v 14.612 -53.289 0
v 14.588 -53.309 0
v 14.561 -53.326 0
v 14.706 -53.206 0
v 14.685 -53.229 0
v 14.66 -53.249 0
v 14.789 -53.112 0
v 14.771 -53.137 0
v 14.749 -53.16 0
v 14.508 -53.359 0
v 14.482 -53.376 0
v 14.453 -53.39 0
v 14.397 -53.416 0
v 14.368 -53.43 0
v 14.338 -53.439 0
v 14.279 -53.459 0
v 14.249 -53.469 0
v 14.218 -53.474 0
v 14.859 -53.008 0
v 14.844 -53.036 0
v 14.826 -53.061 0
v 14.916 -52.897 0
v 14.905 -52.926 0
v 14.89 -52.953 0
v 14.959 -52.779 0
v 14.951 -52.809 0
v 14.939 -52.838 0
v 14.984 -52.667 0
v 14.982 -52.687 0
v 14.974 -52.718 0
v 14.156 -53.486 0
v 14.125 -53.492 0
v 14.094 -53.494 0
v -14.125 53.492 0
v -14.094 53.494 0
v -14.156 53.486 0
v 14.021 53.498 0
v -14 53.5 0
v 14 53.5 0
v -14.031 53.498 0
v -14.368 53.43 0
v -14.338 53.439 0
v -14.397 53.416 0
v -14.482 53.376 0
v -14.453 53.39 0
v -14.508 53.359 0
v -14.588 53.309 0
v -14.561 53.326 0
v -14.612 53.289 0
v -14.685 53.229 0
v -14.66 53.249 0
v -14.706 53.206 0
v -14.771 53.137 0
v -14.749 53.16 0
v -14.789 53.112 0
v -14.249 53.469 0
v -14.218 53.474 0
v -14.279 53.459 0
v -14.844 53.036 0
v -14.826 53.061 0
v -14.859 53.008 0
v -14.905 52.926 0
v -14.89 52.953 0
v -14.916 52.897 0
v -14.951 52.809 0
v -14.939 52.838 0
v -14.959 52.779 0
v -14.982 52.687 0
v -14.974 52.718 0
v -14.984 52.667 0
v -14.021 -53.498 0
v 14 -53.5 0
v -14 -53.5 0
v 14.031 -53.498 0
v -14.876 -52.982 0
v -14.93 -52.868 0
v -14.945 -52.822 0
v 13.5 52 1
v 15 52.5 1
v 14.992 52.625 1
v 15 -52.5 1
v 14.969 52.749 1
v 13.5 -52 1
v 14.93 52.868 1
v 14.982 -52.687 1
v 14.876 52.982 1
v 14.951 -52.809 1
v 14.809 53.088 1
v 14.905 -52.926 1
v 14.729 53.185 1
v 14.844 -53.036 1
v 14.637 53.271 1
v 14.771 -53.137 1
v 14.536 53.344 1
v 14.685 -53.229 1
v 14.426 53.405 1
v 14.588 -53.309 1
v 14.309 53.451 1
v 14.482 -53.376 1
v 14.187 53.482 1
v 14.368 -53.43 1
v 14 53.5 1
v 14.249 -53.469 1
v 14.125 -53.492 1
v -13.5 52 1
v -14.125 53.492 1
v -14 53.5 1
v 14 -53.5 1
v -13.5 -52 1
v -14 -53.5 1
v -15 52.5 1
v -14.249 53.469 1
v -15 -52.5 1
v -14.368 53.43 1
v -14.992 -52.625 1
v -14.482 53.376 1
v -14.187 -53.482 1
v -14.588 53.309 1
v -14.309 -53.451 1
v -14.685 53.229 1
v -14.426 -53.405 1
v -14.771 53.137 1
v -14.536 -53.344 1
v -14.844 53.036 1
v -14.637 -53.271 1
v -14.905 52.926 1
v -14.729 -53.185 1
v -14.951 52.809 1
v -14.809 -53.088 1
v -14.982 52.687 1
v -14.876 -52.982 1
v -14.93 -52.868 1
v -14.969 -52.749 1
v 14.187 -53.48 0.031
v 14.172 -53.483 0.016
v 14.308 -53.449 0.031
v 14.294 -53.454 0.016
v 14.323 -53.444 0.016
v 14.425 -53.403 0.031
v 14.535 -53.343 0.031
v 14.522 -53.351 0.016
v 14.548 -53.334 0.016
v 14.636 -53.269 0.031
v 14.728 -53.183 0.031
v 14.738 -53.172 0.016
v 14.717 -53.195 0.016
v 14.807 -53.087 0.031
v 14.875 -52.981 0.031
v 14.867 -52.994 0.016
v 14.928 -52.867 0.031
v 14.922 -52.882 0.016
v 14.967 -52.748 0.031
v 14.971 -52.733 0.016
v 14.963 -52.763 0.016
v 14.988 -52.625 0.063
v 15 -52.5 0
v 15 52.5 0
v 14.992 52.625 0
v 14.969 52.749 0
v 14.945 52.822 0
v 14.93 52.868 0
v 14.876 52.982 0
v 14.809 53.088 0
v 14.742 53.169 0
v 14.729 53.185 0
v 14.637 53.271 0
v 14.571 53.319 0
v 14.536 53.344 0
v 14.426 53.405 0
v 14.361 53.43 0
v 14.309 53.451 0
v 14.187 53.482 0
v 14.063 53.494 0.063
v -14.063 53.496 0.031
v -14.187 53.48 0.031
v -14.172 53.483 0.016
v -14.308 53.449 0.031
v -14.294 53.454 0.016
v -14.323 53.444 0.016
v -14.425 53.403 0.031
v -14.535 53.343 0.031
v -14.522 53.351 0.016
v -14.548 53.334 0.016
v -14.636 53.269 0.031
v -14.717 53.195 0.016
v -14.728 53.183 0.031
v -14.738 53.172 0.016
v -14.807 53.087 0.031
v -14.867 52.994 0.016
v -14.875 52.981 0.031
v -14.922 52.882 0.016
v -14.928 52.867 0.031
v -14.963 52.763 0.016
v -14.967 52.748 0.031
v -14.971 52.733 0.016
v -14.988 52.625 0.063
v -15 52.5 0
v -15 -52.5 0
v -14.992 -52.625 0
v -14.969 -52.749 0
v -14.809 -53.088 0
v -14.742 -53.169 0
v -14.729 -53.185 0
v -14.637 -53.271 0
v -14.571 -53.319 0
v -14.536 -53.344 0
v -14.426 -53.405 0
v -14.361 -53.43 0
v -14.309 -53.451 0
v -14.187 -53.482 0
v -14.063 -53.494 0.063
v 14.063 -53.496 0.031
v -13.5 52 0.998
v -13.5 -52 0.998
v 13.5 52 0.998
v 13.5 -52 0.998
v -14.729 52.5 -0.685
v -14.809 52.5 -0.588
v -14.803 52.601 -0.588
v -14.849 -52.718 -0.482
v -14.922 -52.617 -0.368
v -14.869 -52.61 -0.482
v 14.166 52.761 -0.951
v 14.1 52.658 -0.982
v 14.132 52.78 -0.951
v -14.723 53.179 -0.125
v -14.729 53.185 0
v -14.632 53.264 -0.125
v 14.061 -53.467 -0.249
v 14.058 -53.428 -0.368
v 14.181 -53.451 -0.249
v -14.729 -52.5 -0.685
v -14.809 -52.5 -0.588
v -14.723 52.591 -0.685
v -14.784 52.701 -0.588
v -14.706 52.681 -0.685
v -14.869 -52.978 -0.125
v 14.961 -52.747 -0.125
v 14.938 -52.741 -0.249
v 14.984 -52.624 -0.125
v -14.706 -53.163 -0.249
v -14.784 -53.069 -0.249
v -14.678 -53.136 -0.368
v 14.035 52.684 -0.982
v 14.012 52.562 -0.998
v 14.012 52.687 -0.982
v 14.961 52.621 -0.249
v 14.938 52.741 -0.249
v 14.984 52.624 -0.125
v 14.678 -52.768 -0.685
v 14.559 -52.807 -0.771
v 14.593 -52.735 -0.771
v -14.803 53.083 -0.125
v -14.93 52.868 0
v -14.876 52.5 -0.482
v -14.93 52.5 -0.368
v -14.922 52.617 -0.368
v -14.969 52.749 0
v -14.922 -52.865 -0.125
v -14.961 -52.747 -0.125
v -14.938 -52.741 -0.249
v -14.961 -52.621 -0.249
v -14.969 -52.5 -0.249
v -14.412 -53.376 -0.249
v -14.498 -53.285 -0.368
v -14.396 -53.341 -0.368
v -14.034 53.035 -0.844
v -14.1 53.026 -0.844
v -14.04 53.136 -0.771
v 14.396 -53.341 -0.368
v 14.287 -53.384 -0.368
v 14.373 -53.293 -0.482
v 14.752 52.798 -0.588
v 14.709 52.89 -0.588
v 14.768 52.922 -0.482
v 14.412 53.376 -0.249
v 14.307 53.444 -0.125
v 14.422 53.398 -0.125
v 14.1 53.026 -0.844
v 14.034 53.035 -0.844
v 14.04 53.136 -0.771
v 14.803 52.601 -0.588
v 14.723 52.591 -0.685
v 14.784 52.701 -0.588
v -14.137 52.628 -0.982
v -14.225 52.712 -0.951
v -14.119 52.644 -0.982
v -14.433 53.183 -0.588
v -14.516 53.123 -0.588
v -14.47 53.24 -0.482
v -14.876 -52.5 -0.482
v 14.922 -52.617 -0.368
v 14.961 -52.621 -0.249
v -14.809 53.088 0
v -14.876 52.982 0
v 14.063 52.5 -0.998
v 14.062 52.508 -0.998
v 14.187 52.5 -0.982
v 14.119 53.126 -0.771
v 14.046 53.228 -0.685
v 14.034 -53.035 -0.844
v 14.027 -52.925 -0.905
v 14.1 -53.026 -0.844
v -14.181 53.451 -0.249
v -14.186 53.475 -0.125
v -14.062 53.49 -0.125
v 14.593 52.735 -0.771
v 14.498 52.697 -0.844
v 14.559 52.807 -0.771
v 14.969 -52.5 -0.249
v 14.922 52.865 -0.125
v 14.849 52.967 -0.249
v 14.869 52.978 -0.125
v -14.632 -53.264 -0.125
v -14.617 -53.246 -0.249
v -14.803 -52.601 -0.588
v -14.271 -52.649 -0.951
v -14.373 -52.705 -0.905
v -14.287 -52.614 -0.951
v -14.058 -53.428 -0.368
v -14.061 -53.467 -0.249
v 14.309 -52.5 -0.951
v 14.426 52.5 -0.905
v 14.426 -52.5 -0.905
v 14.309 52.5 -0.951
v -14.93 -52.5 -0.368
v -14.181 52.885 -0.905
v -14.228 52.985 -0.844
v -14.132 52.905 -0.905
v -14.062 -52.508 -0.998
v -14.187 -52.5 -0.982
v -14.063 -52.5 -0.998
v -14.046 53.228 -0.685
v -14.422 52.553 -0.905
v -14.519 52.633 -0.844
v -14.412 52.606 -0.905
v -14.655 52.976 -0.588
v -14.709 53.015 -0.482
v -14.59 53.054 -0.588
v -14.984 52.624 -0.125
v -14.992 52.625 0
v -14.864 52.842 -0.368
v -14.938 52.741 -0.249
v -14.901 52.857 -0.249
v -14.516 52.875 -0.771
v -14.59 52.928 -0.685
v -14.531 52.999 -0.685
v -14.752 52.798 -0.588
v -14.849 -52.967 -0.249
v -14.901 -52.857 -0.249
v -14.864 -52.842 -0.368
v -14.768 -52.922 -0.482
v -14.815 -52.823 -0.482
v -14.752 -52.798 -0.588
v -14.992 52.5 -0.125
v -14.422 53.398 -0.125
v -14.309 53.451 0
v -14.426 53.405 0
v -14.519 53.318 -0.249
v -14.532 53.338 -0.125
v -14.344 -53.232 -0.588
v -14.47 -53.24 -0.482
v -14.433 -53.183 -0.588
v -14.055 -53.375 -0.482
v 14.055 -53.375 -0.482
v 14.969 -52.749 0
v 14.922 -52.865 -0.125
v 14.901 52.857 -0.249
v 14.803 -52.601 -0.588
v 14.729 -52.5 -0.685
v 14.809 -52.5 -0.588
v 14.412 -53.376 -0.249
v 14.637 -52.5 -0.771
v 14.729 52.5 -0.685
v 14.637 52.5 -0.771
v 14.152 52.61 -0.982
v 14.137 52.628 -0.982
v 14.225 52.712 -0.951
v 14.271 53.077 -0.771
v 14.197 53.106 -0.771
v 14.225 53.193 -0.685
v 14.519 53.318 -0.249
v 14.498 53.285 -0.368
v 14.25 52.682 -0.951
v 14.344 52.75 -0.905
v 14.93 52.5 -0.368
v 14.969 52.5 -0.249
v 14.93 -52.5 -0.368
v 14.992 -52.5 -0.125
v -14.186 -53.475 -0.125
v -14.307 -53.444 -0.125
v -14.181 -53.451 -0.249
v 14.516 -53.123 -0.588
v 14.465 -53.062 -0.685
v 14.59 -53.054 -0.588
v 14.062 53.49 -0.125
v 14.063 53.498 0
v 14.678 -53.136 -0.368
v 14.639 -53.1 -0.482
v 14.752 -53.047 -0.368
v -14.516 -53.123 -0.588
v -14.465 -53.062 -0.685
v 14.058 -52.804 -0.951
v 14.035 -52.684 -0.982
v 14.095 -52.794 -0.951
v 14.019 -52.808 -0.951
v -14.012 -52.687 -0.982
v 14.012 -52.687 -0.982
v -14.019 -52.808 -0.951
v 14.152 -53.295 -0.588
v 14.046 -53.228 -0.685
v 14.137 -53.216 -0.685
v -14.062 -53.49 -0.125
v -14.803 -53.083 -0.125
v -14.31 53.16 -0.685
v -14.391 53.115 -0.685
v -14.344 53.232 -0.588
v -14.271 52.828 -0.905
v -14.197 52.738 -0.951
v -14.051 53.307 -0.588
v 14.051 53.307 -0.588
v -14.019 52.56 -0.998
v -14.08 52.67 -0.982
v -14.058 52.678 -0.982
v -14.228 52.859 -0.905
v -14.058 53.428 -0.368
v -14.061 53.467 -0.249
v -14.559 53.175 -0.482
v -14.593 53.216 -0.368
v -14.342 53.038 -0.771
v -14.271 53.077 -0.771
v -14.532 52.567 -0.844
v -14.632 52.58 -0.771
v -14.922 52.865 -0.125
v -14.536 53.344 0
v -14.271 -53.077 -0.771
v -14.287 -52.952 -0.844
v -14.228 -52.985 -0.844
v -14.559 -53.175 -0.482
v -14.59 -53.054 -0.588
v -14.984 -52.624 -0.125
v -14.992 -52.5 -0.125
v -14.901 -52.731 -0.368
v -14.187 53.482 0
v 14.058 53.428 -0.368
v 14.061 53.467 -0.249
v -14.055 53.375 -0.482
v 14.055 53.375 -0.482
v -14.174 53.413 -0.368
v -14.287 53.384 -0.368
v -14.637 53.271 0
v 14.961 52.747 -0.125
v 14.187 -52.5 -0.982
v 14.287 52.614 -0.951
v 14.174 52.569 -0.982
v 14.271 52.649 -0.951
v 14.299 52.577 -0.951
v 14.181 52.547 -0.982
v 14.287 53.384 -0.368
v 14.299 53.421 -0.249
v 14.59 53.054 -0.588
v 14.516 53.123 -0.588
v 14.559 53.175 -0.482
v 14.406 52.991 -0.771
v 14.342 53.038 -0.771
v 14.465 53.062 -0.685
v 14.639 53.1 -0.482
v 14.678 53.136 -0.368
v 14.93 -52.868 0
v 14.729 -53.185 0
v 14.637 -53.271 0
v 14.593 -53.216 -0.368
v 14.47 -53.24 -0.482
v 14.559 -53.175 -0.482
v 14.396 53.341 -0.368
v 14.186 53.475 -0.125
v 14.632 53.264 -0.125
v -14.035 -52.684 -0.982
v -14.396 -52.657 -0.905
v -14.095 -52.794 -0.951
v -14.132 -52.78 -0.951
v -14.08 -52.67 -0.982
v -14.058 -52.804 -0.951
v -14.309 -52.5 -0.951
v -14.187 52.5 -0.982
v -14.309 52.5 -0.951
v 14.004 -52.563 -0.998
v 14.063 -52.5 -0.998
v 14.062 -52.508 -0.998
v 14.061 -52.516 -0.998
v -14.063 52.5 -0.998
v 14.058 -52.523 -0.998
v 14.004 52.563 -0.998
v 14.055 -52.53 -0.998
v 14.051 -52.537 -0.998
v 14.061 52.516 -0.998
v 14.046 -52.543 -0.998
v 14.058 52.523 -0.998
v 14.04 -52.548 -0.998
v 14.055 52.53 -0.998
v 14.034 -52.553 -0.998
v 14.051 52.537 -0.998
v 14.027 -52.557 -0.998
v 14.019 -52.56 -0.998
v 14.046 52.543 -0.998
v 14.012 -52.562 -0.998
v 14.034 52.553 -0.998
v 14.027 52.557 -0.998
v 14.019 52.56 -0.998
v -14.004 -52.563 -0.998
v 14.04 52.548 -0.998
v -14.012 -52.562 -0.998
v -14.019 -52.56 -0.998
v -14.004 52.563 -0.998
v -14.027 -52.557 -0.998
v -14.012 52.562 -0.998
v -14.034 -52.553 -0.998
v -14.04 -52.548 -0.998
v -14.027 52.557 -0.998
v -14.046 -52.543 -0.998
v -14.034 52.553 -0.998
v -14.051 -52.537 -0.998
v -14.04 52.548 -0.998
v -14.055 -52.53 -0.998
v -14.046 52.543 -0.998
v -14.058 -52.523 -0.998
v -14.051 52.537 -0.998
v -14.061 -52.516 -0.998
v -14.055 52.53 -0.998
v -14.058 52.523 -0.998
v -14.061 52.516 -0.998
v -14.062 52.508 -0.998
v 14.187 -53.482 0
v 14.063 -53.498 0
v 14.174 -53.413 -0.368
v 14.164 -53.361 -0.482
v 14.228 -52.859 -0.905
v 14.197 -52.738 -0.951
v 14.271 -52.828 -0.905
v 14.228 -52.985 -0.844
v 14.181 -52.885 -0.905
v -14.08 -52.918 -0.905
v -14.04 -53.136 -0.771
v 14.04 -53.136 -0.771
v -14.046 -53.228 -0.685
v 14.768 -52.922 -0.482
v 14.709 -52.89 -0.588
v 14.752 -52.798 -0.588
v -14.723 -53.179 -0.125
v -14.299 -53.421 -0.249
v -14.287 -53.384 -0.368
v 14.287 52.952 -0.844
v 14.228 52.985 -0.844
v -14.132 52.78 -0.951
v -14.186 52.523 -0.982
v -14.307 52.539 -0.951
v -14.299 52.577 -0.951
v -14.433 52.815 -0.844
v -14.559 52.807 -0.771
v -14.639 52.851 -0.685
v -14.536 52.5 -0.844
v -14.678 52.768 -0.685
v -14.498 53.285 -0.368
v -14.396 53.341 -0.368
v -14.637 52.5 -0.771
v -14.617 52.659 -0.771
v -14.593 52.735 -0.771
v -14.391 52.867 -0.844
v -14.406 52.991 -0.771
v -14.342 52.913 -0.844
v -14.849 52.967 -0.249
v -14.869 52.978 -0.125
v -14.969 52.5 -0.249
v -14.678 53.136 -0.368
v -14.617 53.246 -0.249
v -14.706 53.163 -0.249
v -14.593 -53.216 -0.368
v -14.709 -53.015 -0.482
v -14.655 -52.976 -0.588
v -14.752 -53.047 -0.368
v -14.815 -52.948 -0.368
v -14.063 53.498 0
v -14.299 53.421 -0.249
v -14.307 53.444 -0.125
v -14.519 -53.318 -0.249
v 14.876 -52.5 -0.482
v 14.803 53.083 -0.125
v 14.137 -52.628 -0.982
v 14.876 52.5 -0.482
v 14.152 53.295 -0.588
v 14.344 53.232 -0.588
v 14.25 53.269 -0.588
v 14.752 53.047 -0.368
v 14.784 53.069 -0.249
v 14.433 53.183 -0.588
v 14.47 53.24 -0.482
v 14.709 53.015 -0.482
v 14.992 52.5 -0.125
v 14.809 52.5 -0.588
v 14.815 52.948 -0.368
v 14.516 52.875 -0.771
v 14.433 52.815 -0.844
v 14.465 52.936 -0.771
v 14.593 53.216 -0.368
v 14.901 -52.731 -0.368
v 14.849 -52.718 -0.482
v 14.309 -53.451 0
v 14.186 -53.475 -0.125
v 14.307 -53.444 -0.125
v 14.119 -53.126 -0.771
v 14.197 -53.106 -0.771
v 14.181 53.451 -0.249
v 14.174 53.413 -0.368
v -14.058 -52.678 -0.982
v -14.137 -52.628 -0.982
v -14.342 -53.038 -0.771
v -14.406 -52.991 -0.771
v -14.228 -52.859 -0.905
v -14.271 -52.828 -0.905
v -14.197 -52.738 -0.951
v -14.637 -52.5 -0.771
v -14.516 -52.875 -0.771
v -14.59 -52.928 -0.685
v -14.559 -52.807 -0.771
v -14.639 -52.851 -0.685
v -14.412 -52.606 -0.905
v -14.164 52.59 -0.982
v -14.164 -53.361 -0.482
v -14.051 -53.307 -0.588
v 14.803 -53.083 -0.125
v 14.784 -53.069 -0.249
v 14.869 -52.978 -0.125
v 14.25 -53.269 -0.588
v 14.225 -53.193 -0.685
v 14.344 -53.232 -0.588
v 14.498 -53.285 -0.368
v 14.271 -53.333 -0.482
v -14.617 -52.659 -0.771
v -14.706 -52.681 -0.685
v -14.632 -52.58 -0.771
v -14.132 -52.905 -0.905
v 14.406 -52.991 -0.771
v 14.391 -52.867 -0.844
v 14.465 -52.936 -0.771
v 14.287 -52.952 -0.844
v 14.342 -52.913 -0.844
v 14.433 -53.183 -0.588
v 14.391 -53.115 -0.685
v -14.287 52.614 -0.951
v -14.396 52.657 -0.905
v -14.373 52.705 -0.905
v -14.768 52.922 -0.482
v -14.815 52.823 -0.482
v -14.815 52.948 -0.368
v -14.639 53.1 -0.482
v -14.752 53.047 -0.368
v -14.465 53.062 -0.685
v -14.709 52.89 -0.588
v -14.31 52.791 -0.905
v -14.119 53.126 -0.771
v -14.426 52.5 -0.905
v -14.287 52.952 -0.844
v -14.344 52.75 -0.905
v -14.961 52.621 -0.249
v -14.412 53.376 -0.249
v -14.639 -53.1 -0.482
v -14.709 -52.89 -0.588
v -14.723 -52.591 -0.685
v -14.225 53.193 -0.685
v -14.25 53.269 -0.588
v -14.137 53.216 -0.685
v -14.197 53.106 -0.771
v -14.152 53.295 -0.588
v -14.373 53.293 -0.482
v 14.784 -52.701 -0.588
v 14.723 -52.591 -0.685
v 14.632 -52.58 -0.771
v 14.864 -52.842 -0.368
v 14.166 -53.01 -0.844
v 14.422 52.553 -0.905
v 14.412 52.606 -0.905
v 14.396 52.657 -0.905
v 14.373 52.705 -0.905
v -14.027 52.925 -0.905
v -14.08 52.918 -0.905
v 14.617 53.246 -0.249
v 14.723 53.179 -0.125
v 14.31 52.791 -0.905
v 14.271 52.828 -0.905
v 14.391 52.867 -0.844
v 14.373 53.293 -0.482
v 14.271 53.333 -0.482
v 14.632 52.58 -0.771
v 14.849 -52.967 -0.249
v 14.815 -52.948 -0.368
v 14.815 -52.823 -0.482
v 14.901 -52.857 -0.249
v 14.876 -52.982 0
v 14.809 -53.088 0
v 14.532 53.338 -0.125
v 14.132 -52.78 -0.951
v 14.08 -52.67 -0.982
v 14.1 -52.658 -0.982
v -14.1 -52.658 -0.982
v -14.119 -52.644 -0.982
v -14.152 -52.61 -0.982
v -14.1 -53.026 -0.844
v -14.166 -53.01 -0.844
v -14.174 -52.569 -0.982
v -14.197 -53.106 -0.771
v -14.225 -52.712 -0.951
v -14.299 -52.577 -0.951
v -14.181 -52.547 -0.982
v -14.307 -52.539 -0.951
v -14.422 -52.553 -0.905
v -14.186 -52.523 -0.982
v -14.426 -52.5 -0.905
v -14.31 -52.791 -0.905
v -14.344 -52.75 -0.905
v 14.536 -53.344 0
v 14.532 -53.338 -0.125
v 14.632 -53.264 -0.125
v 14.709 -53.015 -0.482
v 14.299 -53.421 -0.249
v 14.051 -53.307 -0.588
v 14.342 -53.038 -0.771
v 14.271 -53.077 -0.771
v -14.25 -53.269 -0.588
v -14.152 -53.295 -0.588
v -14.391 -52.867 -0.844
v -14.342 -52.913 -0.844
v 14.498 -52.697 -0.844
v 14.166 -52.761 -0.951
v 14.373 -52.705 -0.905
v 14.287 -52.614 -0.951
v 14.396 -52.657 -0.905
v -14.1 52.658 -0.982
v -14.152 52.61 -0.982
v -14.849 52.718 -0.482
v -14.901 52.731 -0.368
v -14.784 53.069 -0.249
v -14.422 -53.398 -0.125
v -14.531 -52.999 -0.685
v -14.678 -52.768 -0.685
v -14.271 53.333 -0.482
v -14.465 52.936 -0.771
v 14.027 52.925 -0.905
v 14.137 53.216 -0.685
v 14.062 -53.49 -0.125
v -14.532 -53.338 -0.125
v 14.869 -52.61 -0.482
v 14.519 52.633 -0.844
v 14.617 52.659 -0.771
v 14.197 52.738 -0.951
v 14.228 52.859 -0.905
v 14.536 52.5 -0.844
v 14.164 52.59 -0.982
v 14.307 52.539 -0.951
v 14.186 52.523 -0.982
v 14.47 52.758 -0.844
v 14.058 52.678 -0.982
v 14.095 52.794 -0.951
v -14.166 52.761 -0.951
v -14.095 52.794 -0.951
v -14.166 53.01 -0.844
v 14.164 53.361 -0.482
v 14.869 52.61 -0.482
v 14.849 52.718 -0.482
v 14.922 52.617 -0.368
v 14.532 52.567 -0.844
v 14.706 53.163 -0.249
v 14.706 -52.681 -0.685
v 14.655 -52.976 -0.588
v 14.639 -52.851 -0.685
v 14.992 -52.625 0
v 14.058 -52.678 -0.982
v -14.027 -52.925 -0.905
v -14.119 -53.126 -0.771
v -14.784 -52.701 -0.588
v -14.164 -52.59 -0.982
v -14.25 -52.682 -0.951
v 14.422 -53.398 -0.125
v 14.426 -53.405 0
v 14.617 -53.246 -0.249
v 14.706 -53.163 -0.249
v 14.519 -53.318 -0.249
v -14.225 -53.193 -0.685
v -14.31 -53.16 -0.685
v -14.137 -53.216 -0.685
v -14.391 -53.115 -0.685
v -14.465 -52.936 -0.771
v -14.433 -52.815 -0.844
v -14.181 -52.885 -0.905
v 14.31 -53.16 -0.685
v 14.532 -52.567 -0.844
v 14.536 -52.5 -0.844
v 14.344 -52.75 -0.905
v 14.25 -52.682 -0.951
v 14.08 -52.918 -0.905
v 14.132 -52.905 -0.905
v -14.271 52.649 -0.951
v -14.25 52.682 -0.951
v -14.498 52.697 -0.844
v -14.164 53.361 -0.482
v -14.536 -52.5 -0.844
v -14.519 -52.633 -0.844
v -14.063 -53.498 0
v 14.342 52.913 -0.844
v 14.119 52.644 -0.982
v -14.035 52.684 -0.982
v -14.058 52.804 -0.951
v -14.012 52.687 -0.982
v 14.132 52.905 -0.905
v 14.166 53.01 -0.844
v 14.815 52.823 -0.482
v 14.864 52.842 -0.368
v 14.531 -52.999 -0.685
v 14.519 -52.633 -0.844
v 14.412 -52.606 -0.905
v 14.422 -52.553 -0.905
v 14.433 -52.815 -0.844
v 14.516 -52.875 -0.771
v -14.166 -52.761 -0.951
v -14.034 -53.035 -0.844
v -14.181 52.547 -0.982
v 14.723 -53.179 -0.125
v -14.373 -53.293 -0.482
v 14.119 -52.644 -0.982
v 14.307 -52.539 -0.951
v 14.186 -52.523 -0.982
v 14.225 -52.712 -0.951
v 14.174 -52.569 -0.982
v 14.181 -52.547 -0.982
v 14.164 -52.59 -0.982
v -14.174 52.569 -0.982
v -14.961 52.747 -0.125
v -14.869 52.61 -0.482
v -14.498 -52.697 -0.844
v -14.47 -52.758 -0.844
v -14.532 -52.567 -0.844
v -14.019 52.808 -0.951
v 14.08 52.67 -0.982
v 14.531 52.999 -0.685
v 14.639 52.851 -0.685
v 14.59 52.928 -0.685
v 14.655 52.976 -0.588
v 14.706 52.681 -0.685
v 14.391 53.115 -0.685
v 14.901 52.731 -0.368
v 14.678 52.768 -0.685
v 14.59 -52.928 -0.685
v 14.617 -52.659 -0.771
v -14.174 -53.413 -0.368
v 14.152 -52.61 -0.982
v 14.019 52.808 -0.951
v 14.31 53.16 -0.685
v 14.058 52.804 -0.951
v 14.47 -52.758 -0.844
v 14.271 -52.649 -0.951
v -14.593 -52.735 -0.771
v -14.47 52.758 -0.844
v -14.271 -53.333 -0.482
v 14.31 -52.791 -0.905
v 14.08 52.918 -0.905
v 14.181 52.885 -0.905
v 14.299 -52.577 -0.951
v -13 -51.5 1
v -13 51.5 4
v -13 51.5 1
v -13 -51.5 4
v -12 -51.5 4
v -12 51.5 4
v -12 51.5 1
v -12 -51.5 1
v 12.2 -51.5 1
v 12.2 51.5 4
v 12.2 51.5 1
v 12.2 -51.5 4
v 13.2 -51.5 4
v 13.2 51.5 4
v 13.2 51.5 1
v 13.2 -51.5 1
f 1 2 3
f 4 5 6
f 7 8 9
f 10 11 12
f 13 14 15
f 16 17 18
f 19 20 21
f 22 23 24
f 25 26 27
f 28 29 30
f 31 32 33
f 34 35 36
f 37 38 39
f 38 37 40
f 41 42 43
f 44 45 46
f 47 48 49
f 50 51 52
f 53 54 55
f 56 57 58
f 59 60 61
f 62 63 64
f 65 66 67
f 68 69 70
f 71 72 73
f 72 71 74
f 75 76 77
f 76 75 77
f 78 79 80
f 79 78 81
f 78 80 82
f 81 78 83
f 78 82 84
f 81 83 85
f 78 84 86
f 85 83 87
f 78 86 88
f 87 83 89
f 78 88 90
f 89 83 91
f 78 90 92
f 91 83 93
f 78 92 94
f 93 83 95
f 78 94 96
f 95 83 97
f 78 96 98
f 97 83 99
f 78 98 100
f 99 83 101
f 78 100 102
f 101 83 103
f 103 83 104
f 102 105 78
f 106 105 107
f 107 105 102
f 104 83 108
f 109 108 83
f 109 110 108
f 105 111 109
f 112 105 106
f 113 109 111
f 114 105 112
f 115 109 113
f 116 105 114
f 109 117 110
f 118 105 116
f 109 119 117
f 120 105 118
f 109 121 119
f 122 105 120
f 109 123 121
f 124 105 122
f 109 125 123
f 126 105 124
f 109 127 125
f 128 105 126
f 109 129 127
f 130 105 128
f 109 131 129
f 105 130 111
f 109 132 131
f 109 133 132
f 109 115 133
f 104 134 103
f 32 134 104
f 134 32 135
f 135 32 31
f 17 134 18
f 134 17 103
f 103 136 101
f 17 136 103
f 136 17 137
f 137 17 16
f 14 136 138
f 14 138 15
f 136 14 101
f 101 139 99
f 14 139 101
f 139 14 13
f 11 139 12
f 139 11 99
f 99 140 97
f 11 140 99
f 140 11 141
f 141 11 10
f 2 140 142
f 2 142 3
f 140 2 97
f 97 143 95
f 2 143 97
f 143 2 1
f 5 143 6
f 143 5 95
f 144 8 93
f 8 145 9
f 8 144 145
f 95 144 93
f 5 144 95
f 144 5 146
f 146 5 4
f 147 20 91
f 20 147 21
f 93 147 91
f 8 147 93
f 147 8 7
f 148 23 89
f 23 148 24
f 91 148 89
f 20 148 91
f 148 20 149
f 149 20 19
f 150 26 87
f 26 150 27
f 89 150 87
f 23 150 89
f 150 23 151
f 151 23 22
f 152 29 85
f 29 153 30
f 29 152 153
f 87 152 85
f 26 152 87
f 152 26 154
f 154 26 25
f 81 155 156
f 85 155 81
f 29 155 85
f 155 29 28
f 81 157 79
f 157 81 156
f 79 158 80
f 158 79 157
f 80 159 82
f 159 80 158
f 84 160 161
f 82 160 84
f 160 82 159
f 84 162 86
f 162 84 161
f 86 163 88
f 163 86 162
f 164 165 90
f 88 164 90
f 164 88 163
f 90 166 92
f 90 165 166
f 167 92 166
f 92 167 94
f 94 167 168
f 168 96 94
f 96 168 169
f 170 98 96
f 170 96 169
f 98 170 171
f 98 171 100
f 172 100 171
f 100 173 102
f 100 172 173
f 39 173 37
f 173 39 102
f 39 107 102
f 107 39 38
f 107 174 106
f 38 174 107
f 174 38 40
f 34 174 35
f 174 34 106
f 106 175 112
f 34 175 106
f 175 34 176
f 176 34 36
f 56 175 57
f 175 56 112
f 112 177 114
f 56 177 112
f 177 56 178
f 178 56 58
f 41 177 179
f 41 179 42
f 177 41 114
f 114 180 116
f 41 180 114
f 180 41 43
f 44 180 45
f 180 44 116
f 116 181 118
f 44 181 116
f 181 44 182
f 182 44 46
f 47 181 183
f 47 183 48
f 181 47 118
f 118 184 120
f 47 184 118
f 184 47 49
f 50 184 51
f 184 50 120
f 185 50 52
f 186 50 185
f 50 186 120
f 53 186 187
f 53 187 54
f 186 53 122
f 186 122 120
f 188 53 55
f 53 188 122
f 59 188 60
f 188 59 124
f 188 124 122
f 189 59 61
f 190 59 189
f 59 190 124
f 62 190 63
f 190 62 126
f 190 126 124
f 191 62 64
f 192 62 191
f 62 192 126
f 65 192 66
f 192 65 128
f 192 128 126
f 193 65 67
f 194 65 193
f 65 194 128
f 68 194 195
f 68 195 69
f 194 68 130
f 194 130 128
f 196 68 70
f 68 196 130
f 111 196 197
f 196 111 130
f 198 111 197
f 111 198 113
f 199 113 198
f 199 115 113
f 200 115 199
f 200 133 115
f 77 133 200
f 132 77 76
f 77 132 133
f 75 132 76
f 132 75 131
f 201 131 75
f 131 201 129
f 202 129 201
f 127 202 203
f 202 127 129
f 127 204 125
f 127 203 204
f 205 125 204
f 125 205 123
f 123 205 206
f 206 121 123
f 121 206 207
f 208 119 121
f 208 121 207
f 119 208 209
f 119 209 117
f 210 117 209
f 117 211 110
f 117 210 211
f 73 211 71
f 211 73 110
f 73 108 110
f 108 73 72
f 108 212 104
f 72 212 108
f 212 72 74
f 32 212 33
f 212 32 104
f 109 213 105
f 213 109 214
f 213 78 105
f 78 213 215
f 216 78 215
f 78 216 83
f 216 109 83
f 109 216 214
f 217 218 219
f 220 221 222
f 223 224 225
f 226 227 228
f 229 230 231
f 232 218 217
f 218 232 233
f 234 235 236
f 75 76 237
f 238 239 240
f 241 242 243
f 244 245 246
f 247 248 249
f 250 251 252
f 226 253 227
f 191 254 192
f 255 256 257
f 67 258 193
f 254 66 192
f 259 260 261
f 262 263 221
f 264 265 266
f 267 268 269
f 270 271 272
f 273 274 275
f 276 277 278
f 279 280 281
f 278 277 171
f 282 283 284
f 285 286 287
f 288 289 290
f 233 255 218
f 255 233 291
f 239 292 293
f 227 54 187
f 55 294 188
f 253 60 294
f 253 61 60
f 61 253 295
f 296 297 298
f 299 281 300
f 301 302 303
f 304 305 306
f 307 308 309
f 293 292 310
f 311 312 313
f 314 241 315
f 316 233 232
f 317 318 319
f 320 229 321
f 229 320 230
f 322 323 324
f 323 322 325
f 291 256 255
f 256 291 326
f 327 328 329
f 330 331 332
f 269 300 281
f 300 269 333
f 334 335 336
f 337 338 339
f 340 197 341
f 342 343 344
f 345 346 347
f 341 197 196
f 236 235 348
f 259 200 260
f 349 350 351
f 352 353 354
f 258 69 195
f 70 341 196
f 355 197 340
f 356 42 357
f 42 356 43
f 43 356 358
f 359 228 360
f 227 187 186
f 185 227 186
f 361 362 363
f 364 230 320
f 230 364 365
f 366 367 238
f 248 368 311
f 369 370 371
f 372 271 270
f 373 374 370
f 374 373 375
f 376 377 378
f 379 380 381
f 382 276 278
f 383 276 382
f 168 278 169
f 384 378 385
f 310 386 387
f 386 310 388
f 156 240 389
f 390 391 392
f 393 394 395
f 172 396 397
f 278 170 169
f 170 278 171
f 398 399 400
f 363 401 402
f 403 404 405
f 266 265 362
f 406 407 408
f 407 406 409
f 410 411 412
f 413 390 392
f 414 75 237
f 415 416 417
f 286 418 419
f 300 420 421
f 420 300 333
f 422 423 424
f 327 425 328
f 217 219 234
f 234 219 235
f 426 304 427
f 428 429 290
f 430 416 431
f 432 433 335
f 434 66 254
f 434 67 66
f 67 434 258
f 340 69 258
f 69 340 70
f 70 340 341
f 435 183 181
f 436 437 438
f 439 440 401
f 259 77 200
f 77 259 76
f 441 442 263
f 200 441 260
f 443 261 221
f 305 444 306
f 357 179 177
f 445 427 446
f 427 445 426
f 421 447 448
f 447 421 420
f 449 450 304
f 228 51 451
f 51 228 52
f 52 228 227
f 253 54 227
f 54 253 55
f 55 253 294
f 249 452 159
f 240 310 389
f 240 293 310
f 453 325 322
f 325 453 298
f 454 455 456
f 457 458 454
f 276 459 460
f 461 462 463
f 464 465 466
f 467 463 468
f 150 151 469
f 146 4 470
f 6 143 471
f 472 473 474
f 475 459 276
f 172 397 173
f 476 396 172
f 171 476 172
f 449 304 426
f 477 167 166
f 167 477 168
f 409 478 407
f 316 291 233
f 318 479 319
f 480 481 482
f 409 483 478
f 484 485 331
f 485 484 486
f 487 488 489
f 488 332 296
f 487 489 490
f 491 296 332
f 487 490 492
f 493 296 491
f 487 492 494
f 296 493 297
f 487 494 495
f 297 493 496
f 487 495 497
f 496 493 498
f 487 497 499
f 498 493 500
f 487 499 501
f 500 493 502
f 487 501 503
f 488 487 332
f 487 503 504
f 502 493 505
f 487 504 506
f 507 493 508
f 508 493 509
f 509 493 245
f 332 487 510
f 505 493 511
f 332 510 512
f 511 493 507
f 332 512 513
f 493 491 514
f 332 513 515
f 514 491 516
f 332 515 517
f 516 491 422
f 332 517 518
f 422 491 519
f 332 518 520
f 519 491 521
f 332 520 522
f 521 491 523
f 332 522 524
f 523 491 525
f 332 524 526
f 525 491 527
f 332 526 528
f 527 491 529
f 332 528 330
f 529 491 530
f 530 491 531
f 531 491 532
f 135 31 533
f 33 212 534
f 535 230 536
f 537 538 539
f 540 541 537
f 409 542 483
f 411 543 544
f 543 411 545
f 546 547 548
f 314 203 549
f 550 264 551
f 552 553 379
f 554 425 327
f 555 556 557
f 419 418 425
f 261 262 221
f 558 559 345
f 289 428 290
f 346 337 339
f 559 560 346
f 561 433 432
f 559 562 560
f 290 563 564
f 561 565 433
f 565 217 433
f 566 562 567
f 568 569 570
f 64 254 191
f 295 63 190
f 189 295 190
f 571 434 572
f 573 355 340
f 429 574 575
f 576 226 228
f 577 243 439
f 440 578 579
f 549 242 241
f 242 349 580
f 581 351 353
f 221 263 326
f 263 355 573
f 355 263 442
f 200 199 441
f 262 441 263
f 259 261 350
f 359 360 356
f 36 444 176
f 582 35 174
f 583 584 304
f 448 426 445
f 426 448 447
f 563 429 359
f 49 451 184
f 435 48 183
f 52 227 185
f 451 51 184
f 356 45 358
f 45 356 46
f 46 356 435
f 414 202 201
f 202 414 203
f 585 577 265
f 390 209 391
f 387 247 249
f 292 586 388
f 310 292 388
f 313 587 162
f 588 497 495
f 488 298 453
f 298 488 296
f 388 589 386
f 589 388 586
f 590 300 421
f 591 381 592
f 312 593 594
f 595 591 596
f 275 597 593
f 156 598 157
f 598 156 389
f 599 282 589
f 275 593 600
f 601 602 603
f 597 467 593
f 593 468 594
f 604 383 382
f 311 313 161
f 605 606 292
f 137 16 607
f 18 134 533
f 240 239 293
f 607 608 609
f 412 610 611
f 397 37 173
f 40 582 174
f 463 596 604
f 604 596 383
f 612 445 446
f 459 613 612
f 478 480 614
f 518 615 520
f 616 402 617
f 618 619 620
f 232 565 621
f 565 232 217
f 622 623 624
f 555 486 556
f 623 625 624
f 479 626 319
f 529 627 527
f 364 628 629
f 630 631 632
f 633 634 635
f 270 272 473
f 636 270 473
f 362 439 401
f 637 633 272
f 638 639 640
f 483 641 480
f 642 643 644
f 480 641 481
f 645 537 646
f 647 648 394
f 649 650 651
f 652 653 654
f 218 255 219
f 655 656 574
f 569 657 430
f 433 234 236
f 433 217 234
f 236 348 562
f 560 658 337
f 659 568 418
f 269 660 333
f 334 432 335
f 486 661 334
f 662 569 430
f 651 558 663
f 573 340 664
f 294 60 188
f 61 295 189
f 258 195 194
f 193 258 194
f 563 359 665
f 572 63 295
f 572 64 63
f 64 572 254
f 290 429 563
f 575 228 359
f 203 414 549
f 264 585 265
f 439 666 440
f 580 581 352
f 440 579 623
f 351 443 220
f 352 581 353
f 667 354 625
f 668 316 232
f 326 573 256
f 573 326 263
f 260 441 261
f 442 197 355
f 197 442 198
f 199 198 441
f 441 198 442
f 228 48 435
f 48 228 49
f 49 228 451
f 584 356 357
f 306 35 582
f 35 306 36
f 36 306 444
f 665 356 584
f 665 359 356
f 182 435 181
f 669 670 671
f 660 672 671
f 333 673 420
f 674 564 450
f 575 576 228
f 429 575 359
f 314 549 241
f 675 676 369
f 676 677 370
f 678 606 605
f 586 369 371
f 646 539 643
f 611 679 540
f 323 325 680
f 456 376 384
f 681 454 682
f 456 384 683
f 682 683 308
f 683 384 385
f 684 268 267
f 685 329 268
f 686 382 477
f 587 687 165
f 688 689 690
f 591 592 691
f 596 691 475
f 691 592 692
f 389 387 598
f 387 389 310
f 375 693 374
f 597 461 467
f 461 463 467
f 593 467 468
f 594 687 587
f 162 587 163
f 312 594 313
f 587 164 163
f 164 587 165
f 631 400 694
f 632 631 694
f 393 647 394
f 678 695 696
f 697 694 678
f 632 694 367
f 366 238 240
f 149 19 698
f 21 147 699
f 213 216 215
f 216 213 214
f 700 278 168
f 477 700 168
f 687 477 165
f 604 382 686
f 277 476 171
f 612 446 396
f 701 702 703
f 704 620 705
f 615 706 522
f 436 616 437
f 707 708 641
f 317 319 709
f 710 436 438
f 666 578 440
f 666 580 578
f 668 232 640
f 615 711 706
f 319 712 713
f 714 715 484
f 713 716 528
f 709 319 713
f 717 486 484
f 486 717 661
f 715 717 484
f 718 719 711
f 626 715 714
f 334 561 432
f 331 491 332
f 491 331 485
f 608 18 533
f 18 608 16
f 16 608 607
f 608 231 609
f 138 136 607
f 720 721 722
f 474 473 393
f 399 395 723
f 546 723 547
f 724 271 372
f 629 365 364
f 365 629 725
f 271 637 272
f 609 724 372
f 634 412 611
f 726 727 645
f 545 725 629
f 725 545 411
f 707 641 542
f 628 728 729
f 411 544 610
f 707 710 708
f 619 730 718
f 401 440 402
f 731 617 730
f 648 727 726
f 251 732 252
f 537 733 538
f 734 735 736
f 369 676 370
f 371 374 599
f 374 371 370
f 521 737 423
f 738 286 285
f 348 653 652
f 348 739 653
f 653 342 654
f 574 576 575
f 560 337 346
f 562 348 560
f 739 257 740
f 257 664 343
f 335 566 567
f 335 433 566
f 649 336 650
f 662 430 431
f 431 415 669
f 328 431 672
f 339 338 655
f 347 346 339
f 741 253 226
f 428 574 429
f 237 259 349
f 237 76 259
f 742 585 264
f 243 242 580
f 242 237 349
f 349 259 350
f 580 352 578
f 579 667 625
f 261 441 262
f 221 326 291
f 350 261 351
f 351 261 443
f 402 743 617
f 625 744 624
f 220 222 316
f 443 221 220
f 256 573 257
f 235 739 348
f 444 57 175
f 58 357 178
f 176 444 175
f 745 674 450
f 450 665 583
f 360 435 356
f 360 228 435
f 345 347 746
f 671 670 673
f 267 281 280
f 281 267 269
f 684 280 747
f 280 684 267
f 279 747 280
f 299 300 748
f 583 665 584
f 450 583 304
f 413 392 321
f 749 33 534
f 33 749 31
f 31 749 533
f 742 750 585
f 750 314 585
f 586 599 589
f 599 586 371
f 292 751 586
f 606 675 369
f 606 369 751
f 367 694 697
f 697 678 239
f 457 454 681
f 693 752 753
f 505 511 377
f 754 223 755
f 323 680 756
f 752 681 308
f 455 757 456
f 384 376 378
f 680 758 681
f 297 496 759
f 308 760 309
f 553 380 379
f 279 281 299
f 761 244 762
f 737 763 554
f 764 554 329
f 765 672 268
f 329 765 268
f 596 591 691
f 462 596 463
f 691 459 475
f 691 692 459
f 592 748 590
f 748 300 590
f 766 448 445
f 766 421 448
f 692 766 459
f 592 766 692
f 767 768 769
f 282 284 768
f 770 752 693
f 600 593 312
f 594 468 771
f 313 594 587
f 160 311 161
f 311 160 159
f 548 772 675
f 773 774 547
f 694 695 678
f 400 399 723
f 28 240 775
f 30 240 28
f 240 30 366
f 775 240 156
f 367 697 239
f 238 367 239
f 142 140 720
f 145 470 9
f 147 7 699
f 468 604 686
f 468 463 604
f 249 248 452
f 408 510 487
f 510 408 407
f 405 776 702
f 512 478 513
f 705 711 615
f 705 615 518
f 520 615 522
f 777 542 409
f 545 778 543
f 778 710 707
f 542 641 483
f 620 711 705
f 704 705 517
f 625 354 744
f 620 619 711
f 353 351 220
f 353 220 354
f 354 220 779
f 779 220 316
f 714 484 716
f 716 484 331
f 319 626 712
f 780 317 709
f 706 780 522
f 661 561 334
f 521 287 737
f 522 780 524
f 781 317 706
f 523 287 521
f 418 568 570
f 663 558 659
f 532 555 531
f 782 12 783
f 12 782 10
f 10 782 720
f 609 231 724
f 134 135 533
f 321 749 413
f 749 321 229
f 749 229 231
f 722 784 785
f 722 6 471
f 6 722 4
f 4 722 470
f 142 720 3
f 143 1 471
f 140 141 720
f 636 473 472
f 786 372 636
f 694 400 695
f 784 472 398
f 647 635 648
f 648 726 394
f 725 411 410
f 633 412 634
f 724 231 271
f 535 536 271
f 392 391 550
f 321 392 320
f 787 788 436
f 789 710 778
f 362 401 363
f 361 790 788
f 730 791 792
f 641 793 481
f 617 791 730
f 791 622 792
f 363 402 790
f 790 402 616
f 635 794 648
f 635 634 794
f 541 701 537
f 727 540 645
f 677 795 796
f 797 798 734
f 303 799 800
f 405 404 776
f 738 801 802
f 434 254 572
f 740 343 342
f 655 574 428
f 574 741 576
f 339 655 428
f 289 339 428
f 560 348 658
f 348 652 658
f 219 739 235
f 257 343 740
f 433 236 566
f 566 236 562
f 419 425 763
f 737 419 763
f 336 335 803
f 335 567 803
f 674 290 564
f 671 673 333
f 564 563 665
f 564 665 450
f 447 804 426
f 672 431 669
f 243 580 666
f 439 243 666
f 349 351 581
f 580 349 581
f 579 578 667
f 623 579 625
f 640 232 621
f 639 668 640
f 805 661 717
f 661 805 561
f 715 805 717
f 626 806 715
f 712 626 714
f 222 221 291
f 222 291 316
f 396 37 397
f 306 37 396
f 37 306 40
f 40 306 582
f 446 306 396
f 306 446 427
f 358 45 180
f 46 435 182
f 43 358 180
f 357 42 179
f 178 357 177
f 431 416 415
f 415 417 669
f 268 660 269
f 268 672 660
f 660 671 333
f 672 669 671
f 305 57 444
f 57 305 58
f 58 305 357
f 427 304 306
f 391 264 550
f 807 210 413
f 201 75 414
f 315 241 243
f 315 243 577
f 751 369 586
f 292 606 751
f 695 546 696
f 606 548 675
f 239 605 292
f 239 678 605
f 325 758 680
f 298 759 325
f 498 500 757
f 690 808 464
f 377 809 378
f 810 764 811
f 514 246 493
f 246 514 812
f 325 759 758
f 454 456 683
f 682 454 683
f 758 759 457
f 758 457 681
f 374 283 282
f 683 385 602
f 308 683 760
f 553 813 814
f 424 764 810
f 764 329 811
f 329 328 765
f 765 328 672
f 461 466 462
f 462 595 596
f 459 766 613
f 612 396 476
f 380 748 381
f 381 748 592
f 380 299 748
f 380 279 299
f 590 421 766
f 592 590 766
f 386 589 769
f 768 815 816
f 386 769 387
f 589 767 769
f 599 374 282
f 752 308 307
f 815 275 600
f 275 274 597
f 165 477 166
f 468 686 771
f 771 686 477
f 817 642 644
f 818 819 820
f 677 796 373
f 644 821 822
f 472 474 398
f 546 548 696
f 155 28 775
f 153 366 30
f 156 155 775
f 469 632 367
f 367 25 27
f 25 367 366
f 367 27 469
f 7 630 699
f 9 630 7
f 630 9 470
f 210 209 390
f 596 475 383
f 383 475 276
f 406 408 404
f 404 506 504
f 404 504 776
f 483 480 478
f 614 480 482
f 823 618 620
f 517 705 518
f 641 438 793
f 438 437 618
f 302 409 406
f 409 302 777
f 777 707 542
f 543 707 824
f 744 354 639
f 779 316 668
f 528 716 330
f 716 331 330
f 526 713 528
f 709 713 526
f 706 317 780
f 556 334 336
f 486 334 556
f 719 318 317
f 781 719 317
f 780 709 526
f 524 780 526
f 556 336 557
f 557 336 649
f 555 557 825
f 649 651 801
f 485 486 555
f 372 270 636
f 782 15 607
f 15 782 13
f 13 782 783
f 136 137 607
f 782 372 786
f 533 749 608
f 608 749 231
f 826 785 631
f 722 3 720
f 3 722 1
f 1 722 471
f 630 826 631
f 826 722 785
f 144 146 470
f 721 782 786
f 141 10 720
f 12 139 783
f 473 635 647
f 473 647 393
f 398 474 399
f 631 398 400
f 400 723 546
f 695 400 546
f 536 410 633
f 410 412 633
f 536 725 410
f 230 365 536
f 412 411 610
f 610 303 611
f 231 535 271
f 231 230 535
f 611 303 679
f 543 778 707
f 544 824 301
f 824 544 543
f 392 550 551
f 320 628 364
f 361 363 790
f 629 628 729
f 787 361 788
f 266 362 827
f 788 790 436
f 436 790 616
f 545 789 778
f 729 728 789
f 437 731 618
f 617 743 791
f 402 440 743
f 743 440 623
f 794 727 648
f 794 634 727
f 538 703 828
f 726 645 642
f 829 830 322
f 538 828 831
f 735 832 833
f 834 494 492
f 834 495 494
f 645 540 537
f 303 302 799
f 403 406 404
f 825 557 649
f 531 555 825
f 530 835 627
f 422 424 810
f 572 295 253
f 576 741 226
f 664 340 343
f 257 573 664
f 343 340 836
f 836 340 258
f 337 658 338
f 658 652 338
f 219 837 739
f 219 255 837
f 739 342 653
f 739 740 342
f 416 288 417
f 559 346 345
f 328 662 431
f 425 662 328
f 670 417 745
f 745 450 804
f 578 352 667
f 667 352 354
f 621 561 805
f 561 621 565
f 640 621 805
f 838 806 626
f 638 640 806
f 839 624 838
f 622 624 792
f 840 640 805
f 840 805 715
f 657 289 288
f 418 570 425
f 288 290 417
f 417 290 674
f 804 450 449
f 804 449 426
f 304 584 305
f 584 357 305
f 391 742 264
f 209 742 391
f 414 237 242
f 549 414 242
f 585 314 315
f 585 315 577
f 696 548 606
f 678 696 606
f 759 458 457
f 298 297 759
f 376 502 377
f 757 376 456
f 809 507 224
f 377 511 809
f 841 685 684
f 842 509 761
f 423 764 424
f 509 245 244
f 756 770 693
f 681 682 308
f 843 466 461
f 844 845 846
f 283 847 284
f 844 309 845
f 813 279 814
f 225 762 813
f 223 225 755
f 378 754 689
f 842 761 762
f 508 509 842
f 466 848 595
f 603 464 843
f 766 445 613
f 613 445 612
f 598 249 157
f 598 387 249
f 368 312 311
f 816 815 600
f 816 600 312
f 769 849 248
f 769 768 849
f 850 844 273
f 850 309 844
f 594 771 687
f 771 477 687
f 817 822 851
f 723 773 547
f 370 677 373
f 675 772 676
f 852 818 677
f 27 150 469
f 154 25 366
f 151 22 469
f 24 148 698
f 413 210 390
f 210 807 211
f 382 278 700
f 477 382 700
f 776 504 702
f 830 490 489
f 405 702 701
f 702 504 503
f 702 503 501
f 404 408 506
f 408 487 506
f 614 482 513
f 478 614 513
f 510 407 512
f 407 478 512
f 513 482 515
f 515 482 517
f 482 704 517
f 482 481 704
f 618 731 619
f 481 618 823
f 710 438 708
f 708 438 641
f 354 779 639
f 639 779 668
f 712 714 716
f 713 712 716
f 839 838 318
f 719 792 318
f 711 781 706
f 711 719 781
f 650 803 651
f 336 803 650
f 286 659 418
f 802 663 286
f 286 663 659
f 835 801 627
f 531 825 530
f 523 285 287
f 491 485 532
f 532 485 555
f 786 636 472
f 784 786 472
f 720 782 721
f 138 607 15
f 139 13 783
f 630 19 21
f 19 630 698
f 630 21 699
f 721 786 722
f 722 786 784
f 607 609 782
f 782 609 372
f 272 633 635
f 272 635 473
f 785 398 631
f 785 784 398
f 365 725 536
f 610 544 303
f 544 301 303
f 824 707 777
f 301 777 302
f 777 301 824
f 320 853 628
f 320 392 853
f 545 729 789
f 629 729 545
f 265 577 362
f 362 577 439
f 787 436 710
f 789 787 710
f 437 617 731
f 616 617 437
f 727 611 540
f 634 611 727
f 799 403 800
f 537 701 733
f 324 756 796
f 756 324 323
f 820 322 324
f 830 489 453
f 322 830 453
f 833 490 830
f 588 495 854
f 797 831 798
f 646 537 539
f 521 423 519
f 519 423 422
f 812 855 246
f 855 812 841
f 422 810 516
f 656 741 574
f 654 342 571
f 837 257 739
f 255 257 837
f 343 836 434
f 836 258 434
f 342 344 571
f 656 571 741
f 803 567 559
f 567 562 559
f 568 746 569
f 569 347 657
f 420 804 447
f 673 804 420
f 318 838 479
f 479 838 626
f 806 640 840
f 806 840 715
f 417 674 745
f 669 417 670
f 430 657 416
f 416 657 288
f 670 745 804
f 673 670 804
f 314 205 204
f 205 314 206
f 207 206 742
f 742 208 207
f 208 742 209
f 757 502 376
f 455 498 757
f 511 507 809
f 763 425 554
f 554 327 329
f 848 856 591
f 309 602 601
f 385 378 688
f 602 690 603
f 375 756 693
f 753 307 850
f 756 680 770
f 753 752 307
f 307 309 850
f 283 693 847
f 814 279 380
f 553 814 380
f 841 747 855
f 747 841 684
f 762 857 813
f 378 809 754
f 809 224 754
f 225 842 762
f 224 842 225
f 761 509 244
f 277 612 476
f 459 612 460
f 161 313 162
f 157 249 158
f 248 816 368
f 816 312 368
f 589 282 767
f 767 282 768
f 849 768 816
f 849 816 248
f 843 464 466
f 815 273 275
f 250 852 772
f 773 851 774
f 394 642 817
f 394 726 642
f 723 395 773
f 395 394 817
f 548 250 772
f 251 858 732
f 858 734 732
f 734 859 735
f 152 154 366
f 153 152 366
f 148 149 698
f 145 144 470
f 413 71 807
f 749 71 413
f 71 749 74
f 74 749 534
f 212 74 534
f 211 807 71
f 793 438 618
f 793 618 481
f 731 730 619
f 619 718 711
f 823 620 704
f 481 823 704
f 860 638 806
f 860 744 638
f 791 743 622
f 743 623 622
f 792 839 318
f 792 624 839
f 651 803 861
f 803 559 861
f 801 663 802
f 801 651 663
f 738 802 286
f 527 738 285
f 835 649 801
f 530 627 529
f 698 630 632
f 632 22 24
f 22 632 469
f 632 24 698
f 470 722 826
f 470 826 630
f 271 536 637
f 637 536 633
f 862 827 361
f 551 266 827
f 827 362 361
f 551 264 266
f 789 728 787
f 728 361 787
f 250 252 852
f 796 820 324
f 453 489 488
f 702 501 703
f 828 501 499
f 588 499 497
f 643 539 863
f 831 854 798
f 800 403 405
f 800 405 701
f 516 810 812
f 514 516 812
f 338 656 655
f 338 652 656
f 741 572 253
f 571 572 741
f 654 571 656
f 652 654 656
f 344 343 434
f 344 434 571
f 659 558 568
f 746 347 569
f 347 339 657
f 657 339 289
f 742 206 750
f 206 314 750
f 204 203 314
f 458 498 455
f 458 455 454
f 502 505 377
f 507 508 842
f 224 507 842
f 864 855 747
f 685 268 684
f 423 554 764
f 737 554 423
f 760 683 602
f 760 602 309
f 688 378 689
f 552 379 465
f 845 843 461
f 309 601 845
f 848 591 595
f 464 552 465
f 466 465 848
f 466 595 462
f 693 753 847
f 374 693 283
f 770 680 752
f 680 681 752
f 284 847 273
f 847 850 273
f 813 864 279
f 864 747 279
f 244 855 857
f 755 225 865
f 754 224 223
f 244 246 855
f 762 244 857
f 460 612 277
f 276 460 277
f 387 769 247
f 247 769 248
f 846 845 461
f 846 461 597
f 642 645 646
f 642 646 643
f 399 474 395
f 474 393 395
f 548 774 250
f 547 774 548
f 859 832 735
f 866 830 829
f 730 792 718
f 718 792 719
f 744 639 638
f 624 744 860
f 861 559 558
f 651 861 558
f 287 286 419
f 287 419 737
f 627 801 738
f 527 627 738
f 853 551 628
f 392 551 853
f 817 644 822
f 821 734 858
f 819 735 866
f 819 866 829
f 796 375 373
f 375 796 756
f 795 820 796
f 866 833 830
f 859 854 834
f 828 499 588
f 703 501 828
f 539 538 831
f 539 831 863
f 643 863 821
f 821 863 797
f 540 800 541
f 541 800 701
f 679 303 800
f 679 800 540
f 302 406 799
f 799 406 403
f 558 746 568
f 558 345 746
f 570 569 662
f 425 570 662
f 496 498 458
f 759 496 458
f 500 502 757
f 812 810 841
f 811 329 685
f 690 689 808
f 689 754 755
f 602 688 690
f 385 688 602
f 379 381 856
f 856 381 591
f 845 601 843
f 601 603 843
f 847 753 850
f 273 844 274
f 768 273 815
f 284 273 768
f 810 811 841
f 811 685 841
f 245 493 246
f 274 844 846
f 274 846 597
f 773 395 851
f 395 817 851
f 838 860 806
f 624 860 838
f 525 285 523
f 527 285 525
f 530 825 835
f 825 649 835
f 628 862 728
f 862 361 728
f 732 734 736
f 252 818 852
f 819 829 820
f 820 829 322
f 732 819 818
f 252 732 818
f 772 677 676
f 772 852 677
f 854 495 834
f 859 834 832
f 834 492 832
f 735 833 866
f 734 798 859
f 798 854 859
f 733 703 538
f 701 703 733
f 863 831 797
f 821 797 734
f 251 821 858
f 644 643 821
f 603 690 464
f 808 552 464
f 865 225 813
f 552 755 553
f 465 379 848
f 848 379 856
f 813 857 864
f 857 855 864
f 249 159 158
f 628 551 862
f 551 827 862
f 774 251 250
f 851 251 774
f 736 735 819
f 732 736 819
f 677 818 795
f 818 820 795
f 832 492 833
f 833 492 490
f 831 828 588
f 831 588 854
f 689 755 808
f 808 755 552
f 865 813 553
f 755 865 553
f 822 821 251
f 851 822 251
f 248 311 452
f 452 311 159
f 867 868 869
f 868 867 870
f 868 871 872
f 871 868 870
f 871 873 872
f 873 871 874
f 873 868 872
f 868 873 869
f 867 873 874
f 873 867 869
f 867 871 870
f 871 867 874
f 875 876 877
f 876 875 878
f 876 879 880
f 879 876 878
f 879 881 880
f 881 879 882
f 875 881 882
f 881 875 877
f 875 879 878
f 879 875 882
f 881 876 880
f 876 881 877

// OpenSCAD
$fn=50;
BOX_W = 28;  // Box Width
BOX_L = 105; // Box Length
BOX_H = 1.0; // Box Height
//SCREW_SIZE = .5; // Screw size in mm
CORNER_RADIUS = 1.0; // Radius of corners
WALL = 1.0;// Wall Thickness
//POST_OFFSET=3.5;
//POST_RADIUS = 1.5;

//p_w = BOX_W - POST_OFFSET;
//p_l = BOX_L - POST_OFFSET;


difference() {
  union() {
  linear_extrude( BOX_H )
    difference(){
      offset(r=CORNER_RADIUS) square( [BOX_W, BOX_L], center=true );
      offset( r= CORNER_RADIUS - WALL ) square( [BOX_W-WALL, BOX_L-WALL],   center=true );
    };

  coordinates = [ [0,0],[0,BOX_L],[BOX_W,BOX_L],[BOX_W,0] ];

  translate ( [-BOX_W/2, -BOX_L/2] )
    hull()
    for (i = coordinates)
      translate(i) sphere(CORNER_RADIUS);

    translate([BOX_W/-2+WALL,BOX_L/-2+1,WALL]) cube([WALL,BOX_L-(WALL*2),3]);

    translate([BOX_W/2-WALL*1.8,BOX_L/-2+1,WALL]) cube([WALL,BOX_L-(WALL*2),3]);

    //translate([1,-31,WALL-0.9])
    //rotate([90,0,0])
    //linear_extrude(25.1) square([7.8,1.8], center=true);
  }
}
